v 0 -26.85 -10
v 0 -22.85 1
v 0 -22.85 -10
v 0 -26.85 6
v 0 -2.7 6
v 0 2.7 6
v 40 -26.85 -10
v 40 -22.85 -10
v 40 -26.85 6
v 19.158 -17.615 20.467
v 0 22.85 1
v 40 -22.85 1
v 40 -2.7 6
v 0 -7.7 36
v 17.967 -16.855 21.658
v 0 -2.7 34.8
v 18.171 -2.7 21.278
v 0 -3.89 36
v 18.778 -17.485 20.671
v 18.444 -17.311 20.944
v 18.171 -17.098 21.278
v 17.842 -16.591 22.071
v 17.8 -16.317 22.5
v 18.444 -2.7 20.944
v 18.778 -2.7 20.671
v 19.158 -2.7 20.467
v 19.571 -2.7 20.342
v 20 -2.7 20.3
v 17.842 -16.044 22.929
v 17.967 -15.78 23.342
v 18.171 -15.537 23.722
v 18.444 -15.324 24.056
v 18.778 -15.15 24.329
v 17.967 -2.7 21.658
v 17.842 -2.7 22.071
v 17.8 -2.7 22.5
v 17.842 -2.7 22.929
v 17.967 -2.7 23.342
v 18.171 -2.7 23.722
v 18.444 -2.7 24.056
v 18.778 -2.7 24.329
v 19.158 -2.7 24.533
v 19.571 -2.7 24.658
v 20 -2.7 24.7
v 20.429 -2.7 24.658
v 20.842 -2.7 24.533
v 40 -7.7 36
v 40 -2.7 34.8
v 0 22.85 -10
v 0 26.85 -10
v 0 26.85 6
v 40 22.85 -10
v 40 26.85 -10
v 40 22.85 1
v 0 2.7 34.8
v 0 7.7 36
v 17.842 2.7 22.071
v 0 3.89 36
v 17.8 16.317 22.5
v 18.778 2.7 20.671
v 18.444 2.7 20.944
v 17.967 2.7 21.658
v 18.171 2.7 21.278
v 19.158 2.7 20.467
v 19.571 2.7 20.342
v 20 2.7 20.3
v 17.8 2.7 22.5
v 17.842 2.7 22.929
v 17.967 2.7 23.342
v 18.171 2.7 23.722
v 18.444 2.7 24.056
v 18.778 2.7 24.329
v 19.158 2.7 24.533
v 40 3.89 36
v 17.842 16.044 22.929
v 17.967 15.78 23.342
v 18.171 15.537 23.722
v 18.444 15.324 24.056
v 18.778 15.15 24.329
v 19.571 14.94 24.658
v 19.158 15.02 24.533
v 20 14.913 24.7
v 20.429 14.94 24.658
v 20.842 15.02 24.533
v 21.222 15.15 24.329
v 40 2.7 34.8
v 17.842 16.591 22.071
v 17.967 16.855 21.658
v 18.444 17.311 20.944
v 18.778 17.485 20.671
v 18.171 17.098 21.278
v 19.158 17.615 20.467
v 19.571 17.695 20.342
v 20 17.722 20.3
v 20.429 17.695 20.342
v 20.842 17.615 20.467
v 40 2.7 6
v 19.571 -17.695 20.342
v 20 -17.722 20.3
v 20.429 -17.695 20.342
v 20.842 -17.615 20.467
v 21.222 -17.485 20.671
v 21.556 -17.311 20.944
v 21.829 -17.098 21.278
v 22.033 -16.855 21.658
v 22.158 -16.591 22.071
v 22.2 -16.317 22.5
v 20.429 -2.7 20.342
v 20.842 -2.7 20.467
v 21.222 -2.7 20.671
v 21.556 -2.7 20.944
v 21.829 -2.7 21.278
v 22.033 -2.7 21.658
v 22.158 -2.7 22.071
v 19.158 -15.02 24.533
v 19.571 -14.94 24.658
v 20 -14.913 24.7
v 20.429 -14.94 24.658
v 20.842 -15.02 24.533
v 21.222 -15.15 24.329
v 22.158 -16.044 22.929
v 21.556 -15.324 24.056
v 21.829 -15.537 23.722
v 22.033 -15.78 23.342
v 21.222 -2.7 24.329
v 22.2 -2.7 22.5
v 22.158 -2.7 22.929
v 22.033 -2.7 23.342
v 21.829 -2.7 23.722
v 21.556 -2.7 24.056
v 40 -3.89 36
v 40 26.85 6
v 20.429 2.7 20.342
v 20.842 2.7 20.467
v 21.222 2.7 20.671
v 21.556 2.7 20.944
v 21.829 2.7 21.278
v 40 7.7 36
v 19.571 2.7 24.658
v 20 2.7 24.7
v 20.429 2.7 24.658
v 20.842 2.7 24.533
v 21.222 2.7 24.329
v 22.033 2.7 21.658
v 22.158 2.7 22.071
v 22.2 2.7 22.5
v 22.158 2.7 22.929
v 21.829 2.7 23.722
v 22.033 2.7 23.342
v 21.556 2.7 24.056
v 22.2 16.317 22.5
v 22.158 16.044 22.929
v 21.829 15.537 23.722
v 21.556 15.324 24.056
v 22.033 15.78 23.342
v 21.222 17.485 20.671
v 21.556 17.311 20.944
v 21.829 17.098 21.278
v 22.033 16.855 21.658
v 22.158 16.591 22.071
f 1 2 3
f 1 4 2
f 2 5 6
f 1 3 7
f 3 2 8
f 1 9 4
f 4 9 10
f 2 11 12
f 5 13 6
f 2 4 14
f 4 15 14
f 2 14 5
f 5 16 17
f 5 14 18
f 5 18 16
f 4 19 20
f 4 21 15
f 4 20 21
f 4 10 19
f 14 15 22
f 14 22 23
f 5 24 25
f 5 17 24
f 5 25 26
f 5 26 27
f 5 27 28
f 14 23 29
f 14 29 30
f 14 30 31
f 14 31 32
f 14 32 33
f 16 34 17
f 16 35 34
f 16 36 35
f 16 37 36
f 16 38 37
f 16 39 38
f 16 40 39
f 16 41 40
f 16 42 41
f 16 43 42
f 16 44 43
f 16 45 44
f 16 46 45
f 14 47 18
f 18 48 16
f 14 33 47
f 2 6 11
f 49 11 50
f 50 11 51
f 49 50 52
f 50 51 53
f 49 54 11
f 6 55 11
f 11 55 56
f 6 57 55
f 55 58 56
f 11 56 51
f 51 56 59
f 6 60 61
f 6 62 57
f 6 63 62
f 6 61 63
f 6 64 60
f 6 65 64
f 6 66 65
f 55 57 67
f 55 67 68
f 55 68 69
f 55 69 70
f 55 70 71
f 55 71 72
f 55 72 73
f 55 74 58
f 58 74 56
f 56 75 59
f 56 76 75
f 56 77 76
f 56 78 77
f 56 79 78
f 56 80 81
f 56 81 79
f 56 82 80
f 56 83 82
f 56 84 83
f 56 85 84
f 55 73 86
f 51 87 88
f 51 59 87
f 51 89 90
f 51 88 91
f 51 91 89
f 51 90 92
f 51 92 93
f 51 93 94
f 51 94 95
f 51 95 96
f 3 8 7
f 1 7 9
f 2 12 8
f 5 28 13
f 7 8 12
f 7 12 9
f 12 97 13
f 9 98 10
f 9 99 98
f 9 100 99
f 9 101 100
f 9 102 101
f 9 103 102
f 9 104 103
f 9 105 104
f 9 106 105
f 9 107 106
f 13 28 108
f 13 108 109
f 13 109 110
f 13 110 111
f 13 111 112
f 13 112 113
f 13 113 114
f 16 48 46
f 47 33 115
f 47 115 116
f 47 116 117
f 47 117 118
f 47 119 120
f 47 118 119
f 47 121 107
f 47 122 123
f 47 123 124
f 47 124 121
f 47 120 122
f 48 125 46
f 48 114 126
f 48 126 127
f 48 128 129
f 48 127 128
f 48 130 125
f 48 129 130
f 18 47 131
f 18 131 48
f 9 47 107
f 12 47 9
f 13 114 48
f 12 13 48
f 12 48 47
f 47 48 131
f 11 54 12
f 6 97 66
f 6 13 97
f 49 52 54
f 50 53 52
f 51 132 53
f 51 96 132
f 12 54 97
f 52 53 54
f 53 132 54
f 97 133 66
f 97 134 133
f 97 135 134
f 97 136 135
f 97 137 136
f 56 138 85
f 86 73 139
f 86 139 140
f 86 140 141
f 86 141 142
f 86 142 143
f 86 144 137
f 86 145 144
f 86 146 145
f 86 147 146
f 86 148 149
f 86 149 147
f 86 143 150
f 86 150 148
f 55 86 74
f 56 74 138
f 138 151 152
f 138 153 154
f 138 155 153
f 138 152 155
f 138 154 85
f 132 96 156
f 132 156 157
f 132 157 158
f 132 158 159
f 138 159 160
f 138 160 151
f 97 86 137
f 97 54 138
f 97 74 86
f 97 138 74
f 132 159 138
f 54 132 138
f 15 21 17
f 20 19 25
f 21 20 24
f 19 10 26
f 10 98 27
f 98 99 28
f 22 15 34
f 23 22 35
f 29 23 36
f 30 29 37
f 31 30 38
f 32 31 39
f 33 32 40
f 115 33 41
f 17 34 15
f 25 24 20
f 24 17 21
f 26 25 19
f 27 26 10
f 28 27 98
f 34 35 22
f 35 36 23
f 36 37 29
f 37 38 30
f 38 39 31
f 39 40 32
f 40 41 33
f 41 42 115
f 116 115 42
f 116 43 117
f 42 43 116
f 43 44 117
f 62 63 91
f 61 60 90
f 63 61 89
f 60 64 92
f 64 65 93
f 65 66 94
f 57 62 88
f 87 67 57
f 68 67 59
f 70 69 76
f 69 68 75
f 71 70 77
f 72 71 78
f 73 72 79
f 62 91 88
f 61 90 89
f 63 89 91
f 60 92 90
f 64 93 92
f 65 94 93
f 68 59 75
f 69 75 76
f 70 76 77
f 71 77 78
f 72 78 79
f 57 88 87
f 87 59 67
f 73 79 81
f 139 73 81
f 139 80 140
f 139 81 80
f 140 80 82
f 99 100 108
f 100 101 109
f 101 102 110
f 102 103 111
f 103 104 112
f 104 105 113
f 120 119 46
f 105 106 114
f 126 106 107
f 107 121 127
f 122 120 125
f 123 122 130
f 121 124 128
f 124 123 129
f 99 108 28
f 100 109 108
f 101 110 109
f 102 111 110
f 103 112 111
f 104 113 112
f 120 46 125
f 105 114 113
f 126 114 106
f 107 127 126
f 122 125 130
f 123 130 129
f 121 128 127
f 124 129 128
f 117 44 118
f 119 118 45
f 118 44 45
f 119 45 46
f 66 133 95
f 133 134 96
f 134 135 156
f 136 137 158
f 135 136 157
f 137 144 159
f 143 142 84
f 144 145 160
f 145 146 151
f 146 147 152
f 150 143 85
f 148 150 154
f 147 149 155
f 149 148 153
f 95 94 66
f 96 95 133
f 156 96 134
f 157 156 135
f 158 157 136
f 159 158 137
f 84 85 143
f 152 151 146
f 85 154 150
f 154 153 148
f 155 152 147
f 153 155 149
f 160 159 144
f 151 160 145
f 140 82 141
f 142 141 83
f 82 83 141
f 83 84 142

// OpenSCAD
// 桌面隔断横梁 洞洞板支架（纳米胶固定）
// 横梁实测：宽 45.1 mm，顶面距桌面 350 mm，可用长度约 600 mm
//
// 整个零件 = 一个 YZ 截面沿 X 拉伸 len 毫米。
// 打印时把截面平放在热床上（拉伸方向朝上），无需支撑。
//
// 坐标：X 沿横梁方向，Y 横跨横梁，Z 向上，Z=0 为横梁顶面。

/* [横梁] */
rail_w      = 45.1;  // 横梁宽度（卡尺实测）
fit_gap     = 0.3;   // 单侧装配间隙
tape_t      = 1.0;   // 纳米胶厚度（压实后）
lip_h       = 10;    // 两侧下包裙边高度（防侧滑/定位）

/* [洞洞板] */
board_t     = 5.0;   // 洞洞板厚度，按实物修改
board_gap   = 0.4;   // 插槽总间隙
board_off   = 0;     // 插槽相对横梁中心的偏移（正值偏向 +Y 一侧）

/* [支架] */
len         = 40;    // 单个支架长度（沿横梁）
wall        = 4;     // 裙边壁厚
floor_t     = 5;     // 底板厚度
slot_h      = 30;    // 插槽深度
cheek_t     = 5;     // 插槽两侧夹板厚度
chamfer     = 1.2;   // 插槽入口倒角
bolt_d      = 4.4;   // 锁紧螺栓孔（M4），0 = 不开孔

ri  = rail_w / 2 + fit_gap;           // 内腔半宽
ro  = ri + wall;                      // 外半宽
zf  = tape_t;                         // 底板下表面
zt  = tape_t + floor_t;               // 底板上表面 = 插槽底
zh  = zt + slot_h;                    // 顶部
s   = (board_t + board_gap) / 2;      // 插槽半宽
c0  = board_off - s - cheek_t;        // 夹板外侧
c1  = board_off + s + cheek_t;

module profile() {
    difference() {
        polygon([
            [-ro, -lip_h], [-ri, -lip_h], [-ri, zf], [ri, zf],
            [ ri, -lip_h], [ ro, -lip_h], [ ro, zt],
            [ c1, zh], [ c0, zh], [-ro, zt]
        ]);
        // 插槽（带入口倒角）
        polygon([
            [board_off - s, zt], [board_off + s, zt],
            [board_off + s, zh - chamfer], [board_off + s + chamfer, zh + 0.01],
            [board_off - s - chamfer, zh + 0.01], [board_off - s, zh - chamfer]
        ]);
    }
}

difference() {
    rotate([90, 0, 90]) linear_extrude(len) profile();
    if (bolt_d > 0)
        translate([len / 2, 0, zt + slot_h * 0.55])
            rotate([0, 90, 90]) cylinder(d = bolt_d, h = 4 * ro, center = true, $fn = 32);
}
